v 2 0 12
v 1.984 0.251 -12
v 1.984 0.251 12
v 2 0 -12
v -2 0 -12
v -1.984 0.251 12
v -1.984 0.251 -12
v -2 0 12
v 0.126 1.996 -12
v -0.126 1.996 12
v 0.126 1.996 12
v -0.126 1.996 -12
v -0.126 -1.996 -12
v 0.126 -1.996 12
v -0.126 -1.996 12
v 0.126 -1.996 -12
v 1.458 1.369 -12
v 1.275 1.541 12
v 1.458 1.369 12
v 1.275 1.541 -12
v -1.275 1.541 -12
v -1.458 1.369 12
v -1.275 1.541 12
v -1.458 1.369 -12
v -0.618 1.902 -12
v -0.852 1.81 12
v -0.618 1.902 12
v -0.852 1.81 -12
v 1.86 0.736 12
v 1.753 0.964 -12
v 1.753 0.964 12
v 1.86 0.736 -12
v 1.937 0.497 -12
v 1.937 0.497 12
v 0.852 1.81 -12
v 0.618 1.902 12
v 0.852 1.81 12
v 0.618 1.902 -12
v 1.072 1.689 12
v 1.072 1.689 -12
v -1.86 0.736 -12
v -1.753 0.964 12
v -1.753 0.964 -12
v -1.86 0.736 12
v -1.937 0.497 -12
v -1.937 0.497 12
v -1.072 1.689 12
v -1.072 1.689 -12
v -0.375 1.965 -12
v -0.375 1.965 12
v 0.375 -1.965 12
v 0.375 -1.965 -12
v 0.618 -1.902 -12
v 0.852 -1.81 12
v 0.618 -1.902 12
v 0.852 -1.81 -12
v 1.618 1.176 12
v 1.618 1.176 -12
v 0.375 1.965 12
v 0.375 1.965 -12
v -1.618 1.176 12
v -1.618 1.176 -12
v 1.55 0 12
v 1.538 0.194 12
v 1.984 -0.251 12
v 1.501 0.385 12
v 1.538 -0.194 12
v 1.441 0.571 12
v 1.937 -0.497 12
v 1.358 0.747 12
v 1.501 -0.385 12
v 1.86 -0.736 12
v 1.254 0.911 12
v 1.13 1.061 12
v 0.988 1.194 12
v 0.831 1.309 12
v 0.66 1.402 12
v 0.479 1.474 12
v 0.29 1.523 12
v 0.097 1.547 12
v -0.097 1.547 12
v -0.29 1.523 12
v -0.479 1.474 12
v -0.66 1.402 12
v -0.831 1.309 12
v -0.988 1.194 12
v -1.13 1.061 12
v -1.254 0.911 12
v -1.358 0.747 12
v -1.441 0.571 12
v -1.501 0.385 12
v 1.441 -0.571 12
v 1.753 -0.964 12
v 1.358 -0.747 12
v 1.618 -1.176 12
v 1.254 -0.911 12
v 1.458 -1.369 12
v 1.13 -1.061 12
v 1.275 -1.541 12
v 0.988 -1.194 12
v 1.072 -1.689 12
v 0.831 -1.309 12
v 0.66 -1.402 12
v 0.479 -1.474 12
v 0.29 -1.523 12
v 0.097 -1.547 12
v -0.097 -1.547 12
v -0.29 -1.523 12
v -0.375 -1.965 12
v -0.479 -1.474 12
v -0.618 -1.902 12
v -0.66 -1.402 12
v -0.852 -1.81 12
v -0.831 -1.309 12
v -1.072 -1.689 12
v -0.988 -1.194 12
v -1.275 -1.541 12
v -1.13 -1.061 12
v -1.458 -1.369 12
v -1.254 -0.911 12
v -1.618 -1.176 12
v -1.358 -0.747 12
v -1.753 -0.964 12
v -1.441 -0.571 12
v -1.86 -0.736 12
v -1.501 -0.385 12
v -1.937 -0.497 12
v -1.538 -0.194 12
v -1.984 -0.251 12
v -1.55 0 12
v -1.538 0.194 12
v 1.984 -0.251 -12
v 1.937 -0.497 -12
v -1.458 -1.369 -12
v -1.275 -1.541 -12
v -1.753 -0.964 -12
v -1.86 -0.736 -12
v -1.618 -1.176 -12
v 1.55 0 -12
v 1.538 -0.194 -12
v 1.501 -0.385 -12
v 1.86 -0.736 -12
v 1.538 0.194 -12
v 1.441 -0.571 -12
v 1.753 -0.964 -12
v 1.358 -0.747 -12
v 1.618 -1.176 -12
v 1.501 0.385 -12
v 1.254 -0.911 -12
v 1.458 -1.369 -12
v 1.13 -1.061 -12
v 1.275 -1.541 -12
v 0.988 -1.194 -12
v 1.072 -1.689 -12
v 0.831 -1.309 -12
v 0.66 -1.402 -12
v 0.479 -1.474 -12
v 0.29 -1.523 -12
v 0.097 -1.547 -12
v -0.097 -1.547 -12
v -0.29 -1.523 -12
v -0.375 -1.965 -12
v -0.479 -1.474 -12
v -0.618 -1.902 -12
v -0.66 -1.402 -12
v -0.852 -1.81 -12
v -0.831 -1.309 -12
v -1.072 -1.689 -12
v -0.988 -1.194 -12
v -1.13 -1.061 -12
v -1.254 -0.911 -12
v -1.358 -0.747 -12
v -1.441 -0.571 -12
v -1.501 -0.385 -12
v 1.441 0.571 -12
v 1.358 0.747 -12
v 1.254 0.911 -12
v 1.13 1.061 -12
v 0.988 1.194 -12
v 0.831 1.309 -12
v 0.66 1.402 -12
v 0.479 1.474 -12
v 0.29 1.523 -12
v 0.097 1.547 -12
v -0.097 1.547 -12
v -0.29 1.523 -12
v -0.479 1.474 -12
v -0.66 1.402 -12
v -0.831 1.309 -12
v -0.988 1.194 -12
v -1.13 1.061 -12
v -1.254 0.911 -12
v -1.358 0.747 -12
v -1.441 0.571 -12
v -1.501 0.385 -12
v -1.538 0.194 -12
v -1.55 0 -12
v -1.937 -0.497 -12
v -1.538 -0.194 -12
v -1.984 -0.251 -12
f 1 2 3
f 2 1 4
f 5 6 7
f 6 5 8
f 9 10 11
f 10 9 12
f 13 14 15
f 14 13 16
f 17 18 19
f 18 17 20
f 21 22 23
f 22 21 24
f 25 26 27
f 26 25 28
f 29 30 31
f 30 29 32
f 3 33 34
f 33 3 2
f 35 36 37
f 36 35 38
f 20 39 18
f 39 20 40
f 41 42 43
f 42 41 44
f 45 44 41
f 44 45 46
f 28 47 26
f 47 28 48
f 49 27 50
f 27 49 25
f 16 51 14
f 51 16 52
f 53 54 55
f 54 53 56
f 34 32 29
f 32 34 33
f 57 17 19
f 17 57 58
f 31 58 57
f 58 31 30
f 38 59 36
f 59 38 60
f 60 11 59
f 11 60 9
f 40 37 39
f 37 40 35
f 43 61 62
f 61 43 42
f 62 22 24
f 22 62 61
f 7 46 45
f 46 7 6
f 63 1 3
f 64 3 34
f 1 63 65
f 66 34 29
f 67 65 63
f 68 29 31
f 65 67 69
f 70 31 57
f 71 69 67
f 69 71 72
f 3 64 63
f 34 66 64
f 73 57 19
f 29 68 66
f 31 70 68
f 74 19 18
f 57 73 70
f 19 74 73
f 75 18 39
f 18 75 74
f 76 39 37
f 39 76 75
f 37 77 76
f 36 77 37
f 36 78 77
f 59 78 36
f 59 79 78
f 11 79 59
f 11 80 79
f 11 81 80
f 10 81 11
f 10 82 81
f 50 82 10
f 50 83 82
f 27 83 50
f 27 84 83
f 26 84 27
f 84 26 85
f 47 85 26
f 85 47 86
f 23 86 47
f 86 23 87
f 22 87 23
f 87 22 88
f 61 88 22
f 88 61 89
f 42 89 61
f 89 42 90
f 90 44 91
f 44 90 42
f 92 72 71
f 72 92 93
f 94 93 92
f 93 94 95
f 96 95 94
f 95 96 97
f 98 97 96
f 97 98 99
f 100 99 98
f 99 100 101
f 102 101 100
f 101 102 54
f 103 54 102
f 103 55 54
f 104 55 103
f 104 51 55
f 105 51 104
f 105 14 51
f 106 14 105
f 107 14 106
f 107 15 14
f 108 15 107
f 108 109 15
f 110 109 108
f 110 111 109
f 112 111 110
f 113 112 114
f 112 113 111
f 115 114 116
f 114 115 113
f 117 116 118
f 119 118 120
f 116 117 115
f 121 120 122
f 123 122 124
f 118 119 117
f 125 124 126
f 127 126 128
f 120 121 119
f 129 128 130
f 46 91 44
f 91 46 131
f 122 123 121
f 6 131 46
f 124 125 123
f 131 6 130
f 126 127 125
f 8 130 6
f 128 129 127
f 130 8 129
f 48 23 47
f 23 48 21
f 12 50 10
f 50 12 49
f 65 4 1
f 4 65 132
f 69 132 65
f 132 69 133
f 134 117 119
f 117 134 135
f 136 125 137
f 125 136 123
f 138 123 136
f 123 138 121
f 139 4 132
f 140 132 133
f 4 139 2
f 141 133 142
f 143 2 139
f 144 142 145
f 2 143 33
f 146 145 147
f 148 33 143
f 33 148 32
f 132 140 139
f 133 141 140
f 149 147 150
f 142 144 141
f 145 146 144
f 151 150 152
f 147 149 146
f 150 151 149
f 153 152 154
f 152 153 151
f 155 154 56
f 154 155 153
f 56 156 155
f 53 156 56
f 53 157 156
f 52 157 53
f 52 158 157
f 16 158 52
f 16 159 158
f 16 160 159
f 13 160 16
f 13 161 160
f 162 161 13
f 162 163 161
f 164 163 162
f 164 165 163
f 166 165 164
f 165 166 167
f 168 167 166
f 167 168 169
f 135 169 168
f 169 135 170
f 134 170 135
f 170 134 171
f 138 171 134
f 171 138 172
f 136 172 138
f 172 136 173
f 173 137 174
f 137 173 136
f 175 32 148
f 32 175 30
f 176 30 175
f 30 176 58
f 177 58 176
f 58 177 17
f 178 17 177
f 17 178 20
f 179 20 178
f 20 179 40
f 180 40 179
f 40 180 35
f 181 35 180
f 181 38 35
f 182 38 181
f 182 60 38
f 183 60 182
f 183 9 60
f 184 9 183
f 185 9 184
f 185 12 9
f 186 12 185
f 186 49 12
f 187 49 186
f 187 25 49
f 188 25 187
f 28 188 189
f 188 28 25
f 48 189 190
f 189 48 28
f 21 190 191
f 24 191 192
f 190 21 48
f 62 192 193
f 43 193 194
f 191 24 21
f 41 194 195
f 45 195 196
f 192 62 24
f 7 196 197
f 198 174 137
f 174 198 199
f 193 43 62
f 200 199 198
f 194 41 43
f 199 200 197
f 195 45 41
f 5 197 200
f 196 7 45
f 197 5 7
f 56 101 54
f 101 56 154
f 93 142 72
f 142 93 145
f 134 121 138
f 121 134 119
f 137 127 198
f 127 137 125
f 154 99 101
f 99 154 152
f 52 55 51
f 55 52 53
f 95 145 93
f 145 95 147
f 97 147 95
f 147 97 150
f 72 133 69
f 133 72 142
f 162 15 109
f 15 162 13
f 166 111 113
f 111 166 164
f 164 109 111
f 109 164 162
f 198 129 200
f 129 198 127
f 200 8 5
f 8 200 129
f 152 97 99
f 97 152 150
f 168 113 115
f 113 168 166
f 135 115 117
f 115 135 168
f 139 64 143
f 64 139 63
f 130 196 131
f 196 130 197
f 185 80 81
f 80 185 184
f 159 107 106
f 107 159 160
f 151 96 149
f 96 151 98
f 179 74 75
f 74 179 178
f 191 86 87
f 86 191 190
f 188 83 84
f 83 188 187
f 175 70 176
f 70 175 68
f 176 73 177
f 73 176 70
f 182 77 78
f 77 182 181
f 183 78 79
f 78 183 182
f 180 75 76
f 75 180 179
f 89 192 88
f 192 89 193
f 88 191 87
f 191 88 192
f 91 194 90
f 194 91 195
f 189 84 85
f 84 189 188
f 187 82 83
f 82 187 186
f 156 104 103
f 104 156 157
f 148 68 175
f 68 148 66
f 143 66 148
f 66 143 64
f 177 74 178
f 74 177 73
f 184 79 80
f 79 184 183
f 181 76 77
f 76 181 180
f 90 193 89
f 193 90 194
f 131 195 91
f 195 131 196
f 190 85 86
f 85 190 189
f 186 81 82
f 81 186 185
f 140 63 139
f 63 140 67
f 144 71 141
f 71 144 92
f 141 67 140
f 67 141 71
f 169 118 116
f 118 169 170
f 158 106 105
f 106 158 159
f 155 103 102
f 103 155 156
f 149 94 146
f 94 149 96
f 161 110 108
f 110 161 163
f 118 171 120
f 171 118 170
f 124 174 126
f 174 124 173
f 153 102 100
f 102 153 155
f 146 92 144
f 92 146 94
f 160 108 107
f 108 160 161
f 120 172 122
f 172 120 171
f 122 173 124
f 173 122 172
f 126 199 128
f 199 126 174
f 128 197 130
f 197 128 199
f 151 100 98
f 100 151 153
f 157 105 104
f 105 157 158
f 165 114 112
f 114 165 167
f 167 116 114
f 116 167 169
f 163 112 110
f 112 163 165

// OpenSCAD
$fn = 50;


difference() {
	union() {
		translate(v = [0, 0, -12.0000000000]) {
			cylinder(h = 24, r = 2.0000000000);
		}
	}
	union() {
		translate(v = [0, 0, -100.0000000000]) {
			cylinder(h = 200, r = 1.5500000000);
		}
	}
}
